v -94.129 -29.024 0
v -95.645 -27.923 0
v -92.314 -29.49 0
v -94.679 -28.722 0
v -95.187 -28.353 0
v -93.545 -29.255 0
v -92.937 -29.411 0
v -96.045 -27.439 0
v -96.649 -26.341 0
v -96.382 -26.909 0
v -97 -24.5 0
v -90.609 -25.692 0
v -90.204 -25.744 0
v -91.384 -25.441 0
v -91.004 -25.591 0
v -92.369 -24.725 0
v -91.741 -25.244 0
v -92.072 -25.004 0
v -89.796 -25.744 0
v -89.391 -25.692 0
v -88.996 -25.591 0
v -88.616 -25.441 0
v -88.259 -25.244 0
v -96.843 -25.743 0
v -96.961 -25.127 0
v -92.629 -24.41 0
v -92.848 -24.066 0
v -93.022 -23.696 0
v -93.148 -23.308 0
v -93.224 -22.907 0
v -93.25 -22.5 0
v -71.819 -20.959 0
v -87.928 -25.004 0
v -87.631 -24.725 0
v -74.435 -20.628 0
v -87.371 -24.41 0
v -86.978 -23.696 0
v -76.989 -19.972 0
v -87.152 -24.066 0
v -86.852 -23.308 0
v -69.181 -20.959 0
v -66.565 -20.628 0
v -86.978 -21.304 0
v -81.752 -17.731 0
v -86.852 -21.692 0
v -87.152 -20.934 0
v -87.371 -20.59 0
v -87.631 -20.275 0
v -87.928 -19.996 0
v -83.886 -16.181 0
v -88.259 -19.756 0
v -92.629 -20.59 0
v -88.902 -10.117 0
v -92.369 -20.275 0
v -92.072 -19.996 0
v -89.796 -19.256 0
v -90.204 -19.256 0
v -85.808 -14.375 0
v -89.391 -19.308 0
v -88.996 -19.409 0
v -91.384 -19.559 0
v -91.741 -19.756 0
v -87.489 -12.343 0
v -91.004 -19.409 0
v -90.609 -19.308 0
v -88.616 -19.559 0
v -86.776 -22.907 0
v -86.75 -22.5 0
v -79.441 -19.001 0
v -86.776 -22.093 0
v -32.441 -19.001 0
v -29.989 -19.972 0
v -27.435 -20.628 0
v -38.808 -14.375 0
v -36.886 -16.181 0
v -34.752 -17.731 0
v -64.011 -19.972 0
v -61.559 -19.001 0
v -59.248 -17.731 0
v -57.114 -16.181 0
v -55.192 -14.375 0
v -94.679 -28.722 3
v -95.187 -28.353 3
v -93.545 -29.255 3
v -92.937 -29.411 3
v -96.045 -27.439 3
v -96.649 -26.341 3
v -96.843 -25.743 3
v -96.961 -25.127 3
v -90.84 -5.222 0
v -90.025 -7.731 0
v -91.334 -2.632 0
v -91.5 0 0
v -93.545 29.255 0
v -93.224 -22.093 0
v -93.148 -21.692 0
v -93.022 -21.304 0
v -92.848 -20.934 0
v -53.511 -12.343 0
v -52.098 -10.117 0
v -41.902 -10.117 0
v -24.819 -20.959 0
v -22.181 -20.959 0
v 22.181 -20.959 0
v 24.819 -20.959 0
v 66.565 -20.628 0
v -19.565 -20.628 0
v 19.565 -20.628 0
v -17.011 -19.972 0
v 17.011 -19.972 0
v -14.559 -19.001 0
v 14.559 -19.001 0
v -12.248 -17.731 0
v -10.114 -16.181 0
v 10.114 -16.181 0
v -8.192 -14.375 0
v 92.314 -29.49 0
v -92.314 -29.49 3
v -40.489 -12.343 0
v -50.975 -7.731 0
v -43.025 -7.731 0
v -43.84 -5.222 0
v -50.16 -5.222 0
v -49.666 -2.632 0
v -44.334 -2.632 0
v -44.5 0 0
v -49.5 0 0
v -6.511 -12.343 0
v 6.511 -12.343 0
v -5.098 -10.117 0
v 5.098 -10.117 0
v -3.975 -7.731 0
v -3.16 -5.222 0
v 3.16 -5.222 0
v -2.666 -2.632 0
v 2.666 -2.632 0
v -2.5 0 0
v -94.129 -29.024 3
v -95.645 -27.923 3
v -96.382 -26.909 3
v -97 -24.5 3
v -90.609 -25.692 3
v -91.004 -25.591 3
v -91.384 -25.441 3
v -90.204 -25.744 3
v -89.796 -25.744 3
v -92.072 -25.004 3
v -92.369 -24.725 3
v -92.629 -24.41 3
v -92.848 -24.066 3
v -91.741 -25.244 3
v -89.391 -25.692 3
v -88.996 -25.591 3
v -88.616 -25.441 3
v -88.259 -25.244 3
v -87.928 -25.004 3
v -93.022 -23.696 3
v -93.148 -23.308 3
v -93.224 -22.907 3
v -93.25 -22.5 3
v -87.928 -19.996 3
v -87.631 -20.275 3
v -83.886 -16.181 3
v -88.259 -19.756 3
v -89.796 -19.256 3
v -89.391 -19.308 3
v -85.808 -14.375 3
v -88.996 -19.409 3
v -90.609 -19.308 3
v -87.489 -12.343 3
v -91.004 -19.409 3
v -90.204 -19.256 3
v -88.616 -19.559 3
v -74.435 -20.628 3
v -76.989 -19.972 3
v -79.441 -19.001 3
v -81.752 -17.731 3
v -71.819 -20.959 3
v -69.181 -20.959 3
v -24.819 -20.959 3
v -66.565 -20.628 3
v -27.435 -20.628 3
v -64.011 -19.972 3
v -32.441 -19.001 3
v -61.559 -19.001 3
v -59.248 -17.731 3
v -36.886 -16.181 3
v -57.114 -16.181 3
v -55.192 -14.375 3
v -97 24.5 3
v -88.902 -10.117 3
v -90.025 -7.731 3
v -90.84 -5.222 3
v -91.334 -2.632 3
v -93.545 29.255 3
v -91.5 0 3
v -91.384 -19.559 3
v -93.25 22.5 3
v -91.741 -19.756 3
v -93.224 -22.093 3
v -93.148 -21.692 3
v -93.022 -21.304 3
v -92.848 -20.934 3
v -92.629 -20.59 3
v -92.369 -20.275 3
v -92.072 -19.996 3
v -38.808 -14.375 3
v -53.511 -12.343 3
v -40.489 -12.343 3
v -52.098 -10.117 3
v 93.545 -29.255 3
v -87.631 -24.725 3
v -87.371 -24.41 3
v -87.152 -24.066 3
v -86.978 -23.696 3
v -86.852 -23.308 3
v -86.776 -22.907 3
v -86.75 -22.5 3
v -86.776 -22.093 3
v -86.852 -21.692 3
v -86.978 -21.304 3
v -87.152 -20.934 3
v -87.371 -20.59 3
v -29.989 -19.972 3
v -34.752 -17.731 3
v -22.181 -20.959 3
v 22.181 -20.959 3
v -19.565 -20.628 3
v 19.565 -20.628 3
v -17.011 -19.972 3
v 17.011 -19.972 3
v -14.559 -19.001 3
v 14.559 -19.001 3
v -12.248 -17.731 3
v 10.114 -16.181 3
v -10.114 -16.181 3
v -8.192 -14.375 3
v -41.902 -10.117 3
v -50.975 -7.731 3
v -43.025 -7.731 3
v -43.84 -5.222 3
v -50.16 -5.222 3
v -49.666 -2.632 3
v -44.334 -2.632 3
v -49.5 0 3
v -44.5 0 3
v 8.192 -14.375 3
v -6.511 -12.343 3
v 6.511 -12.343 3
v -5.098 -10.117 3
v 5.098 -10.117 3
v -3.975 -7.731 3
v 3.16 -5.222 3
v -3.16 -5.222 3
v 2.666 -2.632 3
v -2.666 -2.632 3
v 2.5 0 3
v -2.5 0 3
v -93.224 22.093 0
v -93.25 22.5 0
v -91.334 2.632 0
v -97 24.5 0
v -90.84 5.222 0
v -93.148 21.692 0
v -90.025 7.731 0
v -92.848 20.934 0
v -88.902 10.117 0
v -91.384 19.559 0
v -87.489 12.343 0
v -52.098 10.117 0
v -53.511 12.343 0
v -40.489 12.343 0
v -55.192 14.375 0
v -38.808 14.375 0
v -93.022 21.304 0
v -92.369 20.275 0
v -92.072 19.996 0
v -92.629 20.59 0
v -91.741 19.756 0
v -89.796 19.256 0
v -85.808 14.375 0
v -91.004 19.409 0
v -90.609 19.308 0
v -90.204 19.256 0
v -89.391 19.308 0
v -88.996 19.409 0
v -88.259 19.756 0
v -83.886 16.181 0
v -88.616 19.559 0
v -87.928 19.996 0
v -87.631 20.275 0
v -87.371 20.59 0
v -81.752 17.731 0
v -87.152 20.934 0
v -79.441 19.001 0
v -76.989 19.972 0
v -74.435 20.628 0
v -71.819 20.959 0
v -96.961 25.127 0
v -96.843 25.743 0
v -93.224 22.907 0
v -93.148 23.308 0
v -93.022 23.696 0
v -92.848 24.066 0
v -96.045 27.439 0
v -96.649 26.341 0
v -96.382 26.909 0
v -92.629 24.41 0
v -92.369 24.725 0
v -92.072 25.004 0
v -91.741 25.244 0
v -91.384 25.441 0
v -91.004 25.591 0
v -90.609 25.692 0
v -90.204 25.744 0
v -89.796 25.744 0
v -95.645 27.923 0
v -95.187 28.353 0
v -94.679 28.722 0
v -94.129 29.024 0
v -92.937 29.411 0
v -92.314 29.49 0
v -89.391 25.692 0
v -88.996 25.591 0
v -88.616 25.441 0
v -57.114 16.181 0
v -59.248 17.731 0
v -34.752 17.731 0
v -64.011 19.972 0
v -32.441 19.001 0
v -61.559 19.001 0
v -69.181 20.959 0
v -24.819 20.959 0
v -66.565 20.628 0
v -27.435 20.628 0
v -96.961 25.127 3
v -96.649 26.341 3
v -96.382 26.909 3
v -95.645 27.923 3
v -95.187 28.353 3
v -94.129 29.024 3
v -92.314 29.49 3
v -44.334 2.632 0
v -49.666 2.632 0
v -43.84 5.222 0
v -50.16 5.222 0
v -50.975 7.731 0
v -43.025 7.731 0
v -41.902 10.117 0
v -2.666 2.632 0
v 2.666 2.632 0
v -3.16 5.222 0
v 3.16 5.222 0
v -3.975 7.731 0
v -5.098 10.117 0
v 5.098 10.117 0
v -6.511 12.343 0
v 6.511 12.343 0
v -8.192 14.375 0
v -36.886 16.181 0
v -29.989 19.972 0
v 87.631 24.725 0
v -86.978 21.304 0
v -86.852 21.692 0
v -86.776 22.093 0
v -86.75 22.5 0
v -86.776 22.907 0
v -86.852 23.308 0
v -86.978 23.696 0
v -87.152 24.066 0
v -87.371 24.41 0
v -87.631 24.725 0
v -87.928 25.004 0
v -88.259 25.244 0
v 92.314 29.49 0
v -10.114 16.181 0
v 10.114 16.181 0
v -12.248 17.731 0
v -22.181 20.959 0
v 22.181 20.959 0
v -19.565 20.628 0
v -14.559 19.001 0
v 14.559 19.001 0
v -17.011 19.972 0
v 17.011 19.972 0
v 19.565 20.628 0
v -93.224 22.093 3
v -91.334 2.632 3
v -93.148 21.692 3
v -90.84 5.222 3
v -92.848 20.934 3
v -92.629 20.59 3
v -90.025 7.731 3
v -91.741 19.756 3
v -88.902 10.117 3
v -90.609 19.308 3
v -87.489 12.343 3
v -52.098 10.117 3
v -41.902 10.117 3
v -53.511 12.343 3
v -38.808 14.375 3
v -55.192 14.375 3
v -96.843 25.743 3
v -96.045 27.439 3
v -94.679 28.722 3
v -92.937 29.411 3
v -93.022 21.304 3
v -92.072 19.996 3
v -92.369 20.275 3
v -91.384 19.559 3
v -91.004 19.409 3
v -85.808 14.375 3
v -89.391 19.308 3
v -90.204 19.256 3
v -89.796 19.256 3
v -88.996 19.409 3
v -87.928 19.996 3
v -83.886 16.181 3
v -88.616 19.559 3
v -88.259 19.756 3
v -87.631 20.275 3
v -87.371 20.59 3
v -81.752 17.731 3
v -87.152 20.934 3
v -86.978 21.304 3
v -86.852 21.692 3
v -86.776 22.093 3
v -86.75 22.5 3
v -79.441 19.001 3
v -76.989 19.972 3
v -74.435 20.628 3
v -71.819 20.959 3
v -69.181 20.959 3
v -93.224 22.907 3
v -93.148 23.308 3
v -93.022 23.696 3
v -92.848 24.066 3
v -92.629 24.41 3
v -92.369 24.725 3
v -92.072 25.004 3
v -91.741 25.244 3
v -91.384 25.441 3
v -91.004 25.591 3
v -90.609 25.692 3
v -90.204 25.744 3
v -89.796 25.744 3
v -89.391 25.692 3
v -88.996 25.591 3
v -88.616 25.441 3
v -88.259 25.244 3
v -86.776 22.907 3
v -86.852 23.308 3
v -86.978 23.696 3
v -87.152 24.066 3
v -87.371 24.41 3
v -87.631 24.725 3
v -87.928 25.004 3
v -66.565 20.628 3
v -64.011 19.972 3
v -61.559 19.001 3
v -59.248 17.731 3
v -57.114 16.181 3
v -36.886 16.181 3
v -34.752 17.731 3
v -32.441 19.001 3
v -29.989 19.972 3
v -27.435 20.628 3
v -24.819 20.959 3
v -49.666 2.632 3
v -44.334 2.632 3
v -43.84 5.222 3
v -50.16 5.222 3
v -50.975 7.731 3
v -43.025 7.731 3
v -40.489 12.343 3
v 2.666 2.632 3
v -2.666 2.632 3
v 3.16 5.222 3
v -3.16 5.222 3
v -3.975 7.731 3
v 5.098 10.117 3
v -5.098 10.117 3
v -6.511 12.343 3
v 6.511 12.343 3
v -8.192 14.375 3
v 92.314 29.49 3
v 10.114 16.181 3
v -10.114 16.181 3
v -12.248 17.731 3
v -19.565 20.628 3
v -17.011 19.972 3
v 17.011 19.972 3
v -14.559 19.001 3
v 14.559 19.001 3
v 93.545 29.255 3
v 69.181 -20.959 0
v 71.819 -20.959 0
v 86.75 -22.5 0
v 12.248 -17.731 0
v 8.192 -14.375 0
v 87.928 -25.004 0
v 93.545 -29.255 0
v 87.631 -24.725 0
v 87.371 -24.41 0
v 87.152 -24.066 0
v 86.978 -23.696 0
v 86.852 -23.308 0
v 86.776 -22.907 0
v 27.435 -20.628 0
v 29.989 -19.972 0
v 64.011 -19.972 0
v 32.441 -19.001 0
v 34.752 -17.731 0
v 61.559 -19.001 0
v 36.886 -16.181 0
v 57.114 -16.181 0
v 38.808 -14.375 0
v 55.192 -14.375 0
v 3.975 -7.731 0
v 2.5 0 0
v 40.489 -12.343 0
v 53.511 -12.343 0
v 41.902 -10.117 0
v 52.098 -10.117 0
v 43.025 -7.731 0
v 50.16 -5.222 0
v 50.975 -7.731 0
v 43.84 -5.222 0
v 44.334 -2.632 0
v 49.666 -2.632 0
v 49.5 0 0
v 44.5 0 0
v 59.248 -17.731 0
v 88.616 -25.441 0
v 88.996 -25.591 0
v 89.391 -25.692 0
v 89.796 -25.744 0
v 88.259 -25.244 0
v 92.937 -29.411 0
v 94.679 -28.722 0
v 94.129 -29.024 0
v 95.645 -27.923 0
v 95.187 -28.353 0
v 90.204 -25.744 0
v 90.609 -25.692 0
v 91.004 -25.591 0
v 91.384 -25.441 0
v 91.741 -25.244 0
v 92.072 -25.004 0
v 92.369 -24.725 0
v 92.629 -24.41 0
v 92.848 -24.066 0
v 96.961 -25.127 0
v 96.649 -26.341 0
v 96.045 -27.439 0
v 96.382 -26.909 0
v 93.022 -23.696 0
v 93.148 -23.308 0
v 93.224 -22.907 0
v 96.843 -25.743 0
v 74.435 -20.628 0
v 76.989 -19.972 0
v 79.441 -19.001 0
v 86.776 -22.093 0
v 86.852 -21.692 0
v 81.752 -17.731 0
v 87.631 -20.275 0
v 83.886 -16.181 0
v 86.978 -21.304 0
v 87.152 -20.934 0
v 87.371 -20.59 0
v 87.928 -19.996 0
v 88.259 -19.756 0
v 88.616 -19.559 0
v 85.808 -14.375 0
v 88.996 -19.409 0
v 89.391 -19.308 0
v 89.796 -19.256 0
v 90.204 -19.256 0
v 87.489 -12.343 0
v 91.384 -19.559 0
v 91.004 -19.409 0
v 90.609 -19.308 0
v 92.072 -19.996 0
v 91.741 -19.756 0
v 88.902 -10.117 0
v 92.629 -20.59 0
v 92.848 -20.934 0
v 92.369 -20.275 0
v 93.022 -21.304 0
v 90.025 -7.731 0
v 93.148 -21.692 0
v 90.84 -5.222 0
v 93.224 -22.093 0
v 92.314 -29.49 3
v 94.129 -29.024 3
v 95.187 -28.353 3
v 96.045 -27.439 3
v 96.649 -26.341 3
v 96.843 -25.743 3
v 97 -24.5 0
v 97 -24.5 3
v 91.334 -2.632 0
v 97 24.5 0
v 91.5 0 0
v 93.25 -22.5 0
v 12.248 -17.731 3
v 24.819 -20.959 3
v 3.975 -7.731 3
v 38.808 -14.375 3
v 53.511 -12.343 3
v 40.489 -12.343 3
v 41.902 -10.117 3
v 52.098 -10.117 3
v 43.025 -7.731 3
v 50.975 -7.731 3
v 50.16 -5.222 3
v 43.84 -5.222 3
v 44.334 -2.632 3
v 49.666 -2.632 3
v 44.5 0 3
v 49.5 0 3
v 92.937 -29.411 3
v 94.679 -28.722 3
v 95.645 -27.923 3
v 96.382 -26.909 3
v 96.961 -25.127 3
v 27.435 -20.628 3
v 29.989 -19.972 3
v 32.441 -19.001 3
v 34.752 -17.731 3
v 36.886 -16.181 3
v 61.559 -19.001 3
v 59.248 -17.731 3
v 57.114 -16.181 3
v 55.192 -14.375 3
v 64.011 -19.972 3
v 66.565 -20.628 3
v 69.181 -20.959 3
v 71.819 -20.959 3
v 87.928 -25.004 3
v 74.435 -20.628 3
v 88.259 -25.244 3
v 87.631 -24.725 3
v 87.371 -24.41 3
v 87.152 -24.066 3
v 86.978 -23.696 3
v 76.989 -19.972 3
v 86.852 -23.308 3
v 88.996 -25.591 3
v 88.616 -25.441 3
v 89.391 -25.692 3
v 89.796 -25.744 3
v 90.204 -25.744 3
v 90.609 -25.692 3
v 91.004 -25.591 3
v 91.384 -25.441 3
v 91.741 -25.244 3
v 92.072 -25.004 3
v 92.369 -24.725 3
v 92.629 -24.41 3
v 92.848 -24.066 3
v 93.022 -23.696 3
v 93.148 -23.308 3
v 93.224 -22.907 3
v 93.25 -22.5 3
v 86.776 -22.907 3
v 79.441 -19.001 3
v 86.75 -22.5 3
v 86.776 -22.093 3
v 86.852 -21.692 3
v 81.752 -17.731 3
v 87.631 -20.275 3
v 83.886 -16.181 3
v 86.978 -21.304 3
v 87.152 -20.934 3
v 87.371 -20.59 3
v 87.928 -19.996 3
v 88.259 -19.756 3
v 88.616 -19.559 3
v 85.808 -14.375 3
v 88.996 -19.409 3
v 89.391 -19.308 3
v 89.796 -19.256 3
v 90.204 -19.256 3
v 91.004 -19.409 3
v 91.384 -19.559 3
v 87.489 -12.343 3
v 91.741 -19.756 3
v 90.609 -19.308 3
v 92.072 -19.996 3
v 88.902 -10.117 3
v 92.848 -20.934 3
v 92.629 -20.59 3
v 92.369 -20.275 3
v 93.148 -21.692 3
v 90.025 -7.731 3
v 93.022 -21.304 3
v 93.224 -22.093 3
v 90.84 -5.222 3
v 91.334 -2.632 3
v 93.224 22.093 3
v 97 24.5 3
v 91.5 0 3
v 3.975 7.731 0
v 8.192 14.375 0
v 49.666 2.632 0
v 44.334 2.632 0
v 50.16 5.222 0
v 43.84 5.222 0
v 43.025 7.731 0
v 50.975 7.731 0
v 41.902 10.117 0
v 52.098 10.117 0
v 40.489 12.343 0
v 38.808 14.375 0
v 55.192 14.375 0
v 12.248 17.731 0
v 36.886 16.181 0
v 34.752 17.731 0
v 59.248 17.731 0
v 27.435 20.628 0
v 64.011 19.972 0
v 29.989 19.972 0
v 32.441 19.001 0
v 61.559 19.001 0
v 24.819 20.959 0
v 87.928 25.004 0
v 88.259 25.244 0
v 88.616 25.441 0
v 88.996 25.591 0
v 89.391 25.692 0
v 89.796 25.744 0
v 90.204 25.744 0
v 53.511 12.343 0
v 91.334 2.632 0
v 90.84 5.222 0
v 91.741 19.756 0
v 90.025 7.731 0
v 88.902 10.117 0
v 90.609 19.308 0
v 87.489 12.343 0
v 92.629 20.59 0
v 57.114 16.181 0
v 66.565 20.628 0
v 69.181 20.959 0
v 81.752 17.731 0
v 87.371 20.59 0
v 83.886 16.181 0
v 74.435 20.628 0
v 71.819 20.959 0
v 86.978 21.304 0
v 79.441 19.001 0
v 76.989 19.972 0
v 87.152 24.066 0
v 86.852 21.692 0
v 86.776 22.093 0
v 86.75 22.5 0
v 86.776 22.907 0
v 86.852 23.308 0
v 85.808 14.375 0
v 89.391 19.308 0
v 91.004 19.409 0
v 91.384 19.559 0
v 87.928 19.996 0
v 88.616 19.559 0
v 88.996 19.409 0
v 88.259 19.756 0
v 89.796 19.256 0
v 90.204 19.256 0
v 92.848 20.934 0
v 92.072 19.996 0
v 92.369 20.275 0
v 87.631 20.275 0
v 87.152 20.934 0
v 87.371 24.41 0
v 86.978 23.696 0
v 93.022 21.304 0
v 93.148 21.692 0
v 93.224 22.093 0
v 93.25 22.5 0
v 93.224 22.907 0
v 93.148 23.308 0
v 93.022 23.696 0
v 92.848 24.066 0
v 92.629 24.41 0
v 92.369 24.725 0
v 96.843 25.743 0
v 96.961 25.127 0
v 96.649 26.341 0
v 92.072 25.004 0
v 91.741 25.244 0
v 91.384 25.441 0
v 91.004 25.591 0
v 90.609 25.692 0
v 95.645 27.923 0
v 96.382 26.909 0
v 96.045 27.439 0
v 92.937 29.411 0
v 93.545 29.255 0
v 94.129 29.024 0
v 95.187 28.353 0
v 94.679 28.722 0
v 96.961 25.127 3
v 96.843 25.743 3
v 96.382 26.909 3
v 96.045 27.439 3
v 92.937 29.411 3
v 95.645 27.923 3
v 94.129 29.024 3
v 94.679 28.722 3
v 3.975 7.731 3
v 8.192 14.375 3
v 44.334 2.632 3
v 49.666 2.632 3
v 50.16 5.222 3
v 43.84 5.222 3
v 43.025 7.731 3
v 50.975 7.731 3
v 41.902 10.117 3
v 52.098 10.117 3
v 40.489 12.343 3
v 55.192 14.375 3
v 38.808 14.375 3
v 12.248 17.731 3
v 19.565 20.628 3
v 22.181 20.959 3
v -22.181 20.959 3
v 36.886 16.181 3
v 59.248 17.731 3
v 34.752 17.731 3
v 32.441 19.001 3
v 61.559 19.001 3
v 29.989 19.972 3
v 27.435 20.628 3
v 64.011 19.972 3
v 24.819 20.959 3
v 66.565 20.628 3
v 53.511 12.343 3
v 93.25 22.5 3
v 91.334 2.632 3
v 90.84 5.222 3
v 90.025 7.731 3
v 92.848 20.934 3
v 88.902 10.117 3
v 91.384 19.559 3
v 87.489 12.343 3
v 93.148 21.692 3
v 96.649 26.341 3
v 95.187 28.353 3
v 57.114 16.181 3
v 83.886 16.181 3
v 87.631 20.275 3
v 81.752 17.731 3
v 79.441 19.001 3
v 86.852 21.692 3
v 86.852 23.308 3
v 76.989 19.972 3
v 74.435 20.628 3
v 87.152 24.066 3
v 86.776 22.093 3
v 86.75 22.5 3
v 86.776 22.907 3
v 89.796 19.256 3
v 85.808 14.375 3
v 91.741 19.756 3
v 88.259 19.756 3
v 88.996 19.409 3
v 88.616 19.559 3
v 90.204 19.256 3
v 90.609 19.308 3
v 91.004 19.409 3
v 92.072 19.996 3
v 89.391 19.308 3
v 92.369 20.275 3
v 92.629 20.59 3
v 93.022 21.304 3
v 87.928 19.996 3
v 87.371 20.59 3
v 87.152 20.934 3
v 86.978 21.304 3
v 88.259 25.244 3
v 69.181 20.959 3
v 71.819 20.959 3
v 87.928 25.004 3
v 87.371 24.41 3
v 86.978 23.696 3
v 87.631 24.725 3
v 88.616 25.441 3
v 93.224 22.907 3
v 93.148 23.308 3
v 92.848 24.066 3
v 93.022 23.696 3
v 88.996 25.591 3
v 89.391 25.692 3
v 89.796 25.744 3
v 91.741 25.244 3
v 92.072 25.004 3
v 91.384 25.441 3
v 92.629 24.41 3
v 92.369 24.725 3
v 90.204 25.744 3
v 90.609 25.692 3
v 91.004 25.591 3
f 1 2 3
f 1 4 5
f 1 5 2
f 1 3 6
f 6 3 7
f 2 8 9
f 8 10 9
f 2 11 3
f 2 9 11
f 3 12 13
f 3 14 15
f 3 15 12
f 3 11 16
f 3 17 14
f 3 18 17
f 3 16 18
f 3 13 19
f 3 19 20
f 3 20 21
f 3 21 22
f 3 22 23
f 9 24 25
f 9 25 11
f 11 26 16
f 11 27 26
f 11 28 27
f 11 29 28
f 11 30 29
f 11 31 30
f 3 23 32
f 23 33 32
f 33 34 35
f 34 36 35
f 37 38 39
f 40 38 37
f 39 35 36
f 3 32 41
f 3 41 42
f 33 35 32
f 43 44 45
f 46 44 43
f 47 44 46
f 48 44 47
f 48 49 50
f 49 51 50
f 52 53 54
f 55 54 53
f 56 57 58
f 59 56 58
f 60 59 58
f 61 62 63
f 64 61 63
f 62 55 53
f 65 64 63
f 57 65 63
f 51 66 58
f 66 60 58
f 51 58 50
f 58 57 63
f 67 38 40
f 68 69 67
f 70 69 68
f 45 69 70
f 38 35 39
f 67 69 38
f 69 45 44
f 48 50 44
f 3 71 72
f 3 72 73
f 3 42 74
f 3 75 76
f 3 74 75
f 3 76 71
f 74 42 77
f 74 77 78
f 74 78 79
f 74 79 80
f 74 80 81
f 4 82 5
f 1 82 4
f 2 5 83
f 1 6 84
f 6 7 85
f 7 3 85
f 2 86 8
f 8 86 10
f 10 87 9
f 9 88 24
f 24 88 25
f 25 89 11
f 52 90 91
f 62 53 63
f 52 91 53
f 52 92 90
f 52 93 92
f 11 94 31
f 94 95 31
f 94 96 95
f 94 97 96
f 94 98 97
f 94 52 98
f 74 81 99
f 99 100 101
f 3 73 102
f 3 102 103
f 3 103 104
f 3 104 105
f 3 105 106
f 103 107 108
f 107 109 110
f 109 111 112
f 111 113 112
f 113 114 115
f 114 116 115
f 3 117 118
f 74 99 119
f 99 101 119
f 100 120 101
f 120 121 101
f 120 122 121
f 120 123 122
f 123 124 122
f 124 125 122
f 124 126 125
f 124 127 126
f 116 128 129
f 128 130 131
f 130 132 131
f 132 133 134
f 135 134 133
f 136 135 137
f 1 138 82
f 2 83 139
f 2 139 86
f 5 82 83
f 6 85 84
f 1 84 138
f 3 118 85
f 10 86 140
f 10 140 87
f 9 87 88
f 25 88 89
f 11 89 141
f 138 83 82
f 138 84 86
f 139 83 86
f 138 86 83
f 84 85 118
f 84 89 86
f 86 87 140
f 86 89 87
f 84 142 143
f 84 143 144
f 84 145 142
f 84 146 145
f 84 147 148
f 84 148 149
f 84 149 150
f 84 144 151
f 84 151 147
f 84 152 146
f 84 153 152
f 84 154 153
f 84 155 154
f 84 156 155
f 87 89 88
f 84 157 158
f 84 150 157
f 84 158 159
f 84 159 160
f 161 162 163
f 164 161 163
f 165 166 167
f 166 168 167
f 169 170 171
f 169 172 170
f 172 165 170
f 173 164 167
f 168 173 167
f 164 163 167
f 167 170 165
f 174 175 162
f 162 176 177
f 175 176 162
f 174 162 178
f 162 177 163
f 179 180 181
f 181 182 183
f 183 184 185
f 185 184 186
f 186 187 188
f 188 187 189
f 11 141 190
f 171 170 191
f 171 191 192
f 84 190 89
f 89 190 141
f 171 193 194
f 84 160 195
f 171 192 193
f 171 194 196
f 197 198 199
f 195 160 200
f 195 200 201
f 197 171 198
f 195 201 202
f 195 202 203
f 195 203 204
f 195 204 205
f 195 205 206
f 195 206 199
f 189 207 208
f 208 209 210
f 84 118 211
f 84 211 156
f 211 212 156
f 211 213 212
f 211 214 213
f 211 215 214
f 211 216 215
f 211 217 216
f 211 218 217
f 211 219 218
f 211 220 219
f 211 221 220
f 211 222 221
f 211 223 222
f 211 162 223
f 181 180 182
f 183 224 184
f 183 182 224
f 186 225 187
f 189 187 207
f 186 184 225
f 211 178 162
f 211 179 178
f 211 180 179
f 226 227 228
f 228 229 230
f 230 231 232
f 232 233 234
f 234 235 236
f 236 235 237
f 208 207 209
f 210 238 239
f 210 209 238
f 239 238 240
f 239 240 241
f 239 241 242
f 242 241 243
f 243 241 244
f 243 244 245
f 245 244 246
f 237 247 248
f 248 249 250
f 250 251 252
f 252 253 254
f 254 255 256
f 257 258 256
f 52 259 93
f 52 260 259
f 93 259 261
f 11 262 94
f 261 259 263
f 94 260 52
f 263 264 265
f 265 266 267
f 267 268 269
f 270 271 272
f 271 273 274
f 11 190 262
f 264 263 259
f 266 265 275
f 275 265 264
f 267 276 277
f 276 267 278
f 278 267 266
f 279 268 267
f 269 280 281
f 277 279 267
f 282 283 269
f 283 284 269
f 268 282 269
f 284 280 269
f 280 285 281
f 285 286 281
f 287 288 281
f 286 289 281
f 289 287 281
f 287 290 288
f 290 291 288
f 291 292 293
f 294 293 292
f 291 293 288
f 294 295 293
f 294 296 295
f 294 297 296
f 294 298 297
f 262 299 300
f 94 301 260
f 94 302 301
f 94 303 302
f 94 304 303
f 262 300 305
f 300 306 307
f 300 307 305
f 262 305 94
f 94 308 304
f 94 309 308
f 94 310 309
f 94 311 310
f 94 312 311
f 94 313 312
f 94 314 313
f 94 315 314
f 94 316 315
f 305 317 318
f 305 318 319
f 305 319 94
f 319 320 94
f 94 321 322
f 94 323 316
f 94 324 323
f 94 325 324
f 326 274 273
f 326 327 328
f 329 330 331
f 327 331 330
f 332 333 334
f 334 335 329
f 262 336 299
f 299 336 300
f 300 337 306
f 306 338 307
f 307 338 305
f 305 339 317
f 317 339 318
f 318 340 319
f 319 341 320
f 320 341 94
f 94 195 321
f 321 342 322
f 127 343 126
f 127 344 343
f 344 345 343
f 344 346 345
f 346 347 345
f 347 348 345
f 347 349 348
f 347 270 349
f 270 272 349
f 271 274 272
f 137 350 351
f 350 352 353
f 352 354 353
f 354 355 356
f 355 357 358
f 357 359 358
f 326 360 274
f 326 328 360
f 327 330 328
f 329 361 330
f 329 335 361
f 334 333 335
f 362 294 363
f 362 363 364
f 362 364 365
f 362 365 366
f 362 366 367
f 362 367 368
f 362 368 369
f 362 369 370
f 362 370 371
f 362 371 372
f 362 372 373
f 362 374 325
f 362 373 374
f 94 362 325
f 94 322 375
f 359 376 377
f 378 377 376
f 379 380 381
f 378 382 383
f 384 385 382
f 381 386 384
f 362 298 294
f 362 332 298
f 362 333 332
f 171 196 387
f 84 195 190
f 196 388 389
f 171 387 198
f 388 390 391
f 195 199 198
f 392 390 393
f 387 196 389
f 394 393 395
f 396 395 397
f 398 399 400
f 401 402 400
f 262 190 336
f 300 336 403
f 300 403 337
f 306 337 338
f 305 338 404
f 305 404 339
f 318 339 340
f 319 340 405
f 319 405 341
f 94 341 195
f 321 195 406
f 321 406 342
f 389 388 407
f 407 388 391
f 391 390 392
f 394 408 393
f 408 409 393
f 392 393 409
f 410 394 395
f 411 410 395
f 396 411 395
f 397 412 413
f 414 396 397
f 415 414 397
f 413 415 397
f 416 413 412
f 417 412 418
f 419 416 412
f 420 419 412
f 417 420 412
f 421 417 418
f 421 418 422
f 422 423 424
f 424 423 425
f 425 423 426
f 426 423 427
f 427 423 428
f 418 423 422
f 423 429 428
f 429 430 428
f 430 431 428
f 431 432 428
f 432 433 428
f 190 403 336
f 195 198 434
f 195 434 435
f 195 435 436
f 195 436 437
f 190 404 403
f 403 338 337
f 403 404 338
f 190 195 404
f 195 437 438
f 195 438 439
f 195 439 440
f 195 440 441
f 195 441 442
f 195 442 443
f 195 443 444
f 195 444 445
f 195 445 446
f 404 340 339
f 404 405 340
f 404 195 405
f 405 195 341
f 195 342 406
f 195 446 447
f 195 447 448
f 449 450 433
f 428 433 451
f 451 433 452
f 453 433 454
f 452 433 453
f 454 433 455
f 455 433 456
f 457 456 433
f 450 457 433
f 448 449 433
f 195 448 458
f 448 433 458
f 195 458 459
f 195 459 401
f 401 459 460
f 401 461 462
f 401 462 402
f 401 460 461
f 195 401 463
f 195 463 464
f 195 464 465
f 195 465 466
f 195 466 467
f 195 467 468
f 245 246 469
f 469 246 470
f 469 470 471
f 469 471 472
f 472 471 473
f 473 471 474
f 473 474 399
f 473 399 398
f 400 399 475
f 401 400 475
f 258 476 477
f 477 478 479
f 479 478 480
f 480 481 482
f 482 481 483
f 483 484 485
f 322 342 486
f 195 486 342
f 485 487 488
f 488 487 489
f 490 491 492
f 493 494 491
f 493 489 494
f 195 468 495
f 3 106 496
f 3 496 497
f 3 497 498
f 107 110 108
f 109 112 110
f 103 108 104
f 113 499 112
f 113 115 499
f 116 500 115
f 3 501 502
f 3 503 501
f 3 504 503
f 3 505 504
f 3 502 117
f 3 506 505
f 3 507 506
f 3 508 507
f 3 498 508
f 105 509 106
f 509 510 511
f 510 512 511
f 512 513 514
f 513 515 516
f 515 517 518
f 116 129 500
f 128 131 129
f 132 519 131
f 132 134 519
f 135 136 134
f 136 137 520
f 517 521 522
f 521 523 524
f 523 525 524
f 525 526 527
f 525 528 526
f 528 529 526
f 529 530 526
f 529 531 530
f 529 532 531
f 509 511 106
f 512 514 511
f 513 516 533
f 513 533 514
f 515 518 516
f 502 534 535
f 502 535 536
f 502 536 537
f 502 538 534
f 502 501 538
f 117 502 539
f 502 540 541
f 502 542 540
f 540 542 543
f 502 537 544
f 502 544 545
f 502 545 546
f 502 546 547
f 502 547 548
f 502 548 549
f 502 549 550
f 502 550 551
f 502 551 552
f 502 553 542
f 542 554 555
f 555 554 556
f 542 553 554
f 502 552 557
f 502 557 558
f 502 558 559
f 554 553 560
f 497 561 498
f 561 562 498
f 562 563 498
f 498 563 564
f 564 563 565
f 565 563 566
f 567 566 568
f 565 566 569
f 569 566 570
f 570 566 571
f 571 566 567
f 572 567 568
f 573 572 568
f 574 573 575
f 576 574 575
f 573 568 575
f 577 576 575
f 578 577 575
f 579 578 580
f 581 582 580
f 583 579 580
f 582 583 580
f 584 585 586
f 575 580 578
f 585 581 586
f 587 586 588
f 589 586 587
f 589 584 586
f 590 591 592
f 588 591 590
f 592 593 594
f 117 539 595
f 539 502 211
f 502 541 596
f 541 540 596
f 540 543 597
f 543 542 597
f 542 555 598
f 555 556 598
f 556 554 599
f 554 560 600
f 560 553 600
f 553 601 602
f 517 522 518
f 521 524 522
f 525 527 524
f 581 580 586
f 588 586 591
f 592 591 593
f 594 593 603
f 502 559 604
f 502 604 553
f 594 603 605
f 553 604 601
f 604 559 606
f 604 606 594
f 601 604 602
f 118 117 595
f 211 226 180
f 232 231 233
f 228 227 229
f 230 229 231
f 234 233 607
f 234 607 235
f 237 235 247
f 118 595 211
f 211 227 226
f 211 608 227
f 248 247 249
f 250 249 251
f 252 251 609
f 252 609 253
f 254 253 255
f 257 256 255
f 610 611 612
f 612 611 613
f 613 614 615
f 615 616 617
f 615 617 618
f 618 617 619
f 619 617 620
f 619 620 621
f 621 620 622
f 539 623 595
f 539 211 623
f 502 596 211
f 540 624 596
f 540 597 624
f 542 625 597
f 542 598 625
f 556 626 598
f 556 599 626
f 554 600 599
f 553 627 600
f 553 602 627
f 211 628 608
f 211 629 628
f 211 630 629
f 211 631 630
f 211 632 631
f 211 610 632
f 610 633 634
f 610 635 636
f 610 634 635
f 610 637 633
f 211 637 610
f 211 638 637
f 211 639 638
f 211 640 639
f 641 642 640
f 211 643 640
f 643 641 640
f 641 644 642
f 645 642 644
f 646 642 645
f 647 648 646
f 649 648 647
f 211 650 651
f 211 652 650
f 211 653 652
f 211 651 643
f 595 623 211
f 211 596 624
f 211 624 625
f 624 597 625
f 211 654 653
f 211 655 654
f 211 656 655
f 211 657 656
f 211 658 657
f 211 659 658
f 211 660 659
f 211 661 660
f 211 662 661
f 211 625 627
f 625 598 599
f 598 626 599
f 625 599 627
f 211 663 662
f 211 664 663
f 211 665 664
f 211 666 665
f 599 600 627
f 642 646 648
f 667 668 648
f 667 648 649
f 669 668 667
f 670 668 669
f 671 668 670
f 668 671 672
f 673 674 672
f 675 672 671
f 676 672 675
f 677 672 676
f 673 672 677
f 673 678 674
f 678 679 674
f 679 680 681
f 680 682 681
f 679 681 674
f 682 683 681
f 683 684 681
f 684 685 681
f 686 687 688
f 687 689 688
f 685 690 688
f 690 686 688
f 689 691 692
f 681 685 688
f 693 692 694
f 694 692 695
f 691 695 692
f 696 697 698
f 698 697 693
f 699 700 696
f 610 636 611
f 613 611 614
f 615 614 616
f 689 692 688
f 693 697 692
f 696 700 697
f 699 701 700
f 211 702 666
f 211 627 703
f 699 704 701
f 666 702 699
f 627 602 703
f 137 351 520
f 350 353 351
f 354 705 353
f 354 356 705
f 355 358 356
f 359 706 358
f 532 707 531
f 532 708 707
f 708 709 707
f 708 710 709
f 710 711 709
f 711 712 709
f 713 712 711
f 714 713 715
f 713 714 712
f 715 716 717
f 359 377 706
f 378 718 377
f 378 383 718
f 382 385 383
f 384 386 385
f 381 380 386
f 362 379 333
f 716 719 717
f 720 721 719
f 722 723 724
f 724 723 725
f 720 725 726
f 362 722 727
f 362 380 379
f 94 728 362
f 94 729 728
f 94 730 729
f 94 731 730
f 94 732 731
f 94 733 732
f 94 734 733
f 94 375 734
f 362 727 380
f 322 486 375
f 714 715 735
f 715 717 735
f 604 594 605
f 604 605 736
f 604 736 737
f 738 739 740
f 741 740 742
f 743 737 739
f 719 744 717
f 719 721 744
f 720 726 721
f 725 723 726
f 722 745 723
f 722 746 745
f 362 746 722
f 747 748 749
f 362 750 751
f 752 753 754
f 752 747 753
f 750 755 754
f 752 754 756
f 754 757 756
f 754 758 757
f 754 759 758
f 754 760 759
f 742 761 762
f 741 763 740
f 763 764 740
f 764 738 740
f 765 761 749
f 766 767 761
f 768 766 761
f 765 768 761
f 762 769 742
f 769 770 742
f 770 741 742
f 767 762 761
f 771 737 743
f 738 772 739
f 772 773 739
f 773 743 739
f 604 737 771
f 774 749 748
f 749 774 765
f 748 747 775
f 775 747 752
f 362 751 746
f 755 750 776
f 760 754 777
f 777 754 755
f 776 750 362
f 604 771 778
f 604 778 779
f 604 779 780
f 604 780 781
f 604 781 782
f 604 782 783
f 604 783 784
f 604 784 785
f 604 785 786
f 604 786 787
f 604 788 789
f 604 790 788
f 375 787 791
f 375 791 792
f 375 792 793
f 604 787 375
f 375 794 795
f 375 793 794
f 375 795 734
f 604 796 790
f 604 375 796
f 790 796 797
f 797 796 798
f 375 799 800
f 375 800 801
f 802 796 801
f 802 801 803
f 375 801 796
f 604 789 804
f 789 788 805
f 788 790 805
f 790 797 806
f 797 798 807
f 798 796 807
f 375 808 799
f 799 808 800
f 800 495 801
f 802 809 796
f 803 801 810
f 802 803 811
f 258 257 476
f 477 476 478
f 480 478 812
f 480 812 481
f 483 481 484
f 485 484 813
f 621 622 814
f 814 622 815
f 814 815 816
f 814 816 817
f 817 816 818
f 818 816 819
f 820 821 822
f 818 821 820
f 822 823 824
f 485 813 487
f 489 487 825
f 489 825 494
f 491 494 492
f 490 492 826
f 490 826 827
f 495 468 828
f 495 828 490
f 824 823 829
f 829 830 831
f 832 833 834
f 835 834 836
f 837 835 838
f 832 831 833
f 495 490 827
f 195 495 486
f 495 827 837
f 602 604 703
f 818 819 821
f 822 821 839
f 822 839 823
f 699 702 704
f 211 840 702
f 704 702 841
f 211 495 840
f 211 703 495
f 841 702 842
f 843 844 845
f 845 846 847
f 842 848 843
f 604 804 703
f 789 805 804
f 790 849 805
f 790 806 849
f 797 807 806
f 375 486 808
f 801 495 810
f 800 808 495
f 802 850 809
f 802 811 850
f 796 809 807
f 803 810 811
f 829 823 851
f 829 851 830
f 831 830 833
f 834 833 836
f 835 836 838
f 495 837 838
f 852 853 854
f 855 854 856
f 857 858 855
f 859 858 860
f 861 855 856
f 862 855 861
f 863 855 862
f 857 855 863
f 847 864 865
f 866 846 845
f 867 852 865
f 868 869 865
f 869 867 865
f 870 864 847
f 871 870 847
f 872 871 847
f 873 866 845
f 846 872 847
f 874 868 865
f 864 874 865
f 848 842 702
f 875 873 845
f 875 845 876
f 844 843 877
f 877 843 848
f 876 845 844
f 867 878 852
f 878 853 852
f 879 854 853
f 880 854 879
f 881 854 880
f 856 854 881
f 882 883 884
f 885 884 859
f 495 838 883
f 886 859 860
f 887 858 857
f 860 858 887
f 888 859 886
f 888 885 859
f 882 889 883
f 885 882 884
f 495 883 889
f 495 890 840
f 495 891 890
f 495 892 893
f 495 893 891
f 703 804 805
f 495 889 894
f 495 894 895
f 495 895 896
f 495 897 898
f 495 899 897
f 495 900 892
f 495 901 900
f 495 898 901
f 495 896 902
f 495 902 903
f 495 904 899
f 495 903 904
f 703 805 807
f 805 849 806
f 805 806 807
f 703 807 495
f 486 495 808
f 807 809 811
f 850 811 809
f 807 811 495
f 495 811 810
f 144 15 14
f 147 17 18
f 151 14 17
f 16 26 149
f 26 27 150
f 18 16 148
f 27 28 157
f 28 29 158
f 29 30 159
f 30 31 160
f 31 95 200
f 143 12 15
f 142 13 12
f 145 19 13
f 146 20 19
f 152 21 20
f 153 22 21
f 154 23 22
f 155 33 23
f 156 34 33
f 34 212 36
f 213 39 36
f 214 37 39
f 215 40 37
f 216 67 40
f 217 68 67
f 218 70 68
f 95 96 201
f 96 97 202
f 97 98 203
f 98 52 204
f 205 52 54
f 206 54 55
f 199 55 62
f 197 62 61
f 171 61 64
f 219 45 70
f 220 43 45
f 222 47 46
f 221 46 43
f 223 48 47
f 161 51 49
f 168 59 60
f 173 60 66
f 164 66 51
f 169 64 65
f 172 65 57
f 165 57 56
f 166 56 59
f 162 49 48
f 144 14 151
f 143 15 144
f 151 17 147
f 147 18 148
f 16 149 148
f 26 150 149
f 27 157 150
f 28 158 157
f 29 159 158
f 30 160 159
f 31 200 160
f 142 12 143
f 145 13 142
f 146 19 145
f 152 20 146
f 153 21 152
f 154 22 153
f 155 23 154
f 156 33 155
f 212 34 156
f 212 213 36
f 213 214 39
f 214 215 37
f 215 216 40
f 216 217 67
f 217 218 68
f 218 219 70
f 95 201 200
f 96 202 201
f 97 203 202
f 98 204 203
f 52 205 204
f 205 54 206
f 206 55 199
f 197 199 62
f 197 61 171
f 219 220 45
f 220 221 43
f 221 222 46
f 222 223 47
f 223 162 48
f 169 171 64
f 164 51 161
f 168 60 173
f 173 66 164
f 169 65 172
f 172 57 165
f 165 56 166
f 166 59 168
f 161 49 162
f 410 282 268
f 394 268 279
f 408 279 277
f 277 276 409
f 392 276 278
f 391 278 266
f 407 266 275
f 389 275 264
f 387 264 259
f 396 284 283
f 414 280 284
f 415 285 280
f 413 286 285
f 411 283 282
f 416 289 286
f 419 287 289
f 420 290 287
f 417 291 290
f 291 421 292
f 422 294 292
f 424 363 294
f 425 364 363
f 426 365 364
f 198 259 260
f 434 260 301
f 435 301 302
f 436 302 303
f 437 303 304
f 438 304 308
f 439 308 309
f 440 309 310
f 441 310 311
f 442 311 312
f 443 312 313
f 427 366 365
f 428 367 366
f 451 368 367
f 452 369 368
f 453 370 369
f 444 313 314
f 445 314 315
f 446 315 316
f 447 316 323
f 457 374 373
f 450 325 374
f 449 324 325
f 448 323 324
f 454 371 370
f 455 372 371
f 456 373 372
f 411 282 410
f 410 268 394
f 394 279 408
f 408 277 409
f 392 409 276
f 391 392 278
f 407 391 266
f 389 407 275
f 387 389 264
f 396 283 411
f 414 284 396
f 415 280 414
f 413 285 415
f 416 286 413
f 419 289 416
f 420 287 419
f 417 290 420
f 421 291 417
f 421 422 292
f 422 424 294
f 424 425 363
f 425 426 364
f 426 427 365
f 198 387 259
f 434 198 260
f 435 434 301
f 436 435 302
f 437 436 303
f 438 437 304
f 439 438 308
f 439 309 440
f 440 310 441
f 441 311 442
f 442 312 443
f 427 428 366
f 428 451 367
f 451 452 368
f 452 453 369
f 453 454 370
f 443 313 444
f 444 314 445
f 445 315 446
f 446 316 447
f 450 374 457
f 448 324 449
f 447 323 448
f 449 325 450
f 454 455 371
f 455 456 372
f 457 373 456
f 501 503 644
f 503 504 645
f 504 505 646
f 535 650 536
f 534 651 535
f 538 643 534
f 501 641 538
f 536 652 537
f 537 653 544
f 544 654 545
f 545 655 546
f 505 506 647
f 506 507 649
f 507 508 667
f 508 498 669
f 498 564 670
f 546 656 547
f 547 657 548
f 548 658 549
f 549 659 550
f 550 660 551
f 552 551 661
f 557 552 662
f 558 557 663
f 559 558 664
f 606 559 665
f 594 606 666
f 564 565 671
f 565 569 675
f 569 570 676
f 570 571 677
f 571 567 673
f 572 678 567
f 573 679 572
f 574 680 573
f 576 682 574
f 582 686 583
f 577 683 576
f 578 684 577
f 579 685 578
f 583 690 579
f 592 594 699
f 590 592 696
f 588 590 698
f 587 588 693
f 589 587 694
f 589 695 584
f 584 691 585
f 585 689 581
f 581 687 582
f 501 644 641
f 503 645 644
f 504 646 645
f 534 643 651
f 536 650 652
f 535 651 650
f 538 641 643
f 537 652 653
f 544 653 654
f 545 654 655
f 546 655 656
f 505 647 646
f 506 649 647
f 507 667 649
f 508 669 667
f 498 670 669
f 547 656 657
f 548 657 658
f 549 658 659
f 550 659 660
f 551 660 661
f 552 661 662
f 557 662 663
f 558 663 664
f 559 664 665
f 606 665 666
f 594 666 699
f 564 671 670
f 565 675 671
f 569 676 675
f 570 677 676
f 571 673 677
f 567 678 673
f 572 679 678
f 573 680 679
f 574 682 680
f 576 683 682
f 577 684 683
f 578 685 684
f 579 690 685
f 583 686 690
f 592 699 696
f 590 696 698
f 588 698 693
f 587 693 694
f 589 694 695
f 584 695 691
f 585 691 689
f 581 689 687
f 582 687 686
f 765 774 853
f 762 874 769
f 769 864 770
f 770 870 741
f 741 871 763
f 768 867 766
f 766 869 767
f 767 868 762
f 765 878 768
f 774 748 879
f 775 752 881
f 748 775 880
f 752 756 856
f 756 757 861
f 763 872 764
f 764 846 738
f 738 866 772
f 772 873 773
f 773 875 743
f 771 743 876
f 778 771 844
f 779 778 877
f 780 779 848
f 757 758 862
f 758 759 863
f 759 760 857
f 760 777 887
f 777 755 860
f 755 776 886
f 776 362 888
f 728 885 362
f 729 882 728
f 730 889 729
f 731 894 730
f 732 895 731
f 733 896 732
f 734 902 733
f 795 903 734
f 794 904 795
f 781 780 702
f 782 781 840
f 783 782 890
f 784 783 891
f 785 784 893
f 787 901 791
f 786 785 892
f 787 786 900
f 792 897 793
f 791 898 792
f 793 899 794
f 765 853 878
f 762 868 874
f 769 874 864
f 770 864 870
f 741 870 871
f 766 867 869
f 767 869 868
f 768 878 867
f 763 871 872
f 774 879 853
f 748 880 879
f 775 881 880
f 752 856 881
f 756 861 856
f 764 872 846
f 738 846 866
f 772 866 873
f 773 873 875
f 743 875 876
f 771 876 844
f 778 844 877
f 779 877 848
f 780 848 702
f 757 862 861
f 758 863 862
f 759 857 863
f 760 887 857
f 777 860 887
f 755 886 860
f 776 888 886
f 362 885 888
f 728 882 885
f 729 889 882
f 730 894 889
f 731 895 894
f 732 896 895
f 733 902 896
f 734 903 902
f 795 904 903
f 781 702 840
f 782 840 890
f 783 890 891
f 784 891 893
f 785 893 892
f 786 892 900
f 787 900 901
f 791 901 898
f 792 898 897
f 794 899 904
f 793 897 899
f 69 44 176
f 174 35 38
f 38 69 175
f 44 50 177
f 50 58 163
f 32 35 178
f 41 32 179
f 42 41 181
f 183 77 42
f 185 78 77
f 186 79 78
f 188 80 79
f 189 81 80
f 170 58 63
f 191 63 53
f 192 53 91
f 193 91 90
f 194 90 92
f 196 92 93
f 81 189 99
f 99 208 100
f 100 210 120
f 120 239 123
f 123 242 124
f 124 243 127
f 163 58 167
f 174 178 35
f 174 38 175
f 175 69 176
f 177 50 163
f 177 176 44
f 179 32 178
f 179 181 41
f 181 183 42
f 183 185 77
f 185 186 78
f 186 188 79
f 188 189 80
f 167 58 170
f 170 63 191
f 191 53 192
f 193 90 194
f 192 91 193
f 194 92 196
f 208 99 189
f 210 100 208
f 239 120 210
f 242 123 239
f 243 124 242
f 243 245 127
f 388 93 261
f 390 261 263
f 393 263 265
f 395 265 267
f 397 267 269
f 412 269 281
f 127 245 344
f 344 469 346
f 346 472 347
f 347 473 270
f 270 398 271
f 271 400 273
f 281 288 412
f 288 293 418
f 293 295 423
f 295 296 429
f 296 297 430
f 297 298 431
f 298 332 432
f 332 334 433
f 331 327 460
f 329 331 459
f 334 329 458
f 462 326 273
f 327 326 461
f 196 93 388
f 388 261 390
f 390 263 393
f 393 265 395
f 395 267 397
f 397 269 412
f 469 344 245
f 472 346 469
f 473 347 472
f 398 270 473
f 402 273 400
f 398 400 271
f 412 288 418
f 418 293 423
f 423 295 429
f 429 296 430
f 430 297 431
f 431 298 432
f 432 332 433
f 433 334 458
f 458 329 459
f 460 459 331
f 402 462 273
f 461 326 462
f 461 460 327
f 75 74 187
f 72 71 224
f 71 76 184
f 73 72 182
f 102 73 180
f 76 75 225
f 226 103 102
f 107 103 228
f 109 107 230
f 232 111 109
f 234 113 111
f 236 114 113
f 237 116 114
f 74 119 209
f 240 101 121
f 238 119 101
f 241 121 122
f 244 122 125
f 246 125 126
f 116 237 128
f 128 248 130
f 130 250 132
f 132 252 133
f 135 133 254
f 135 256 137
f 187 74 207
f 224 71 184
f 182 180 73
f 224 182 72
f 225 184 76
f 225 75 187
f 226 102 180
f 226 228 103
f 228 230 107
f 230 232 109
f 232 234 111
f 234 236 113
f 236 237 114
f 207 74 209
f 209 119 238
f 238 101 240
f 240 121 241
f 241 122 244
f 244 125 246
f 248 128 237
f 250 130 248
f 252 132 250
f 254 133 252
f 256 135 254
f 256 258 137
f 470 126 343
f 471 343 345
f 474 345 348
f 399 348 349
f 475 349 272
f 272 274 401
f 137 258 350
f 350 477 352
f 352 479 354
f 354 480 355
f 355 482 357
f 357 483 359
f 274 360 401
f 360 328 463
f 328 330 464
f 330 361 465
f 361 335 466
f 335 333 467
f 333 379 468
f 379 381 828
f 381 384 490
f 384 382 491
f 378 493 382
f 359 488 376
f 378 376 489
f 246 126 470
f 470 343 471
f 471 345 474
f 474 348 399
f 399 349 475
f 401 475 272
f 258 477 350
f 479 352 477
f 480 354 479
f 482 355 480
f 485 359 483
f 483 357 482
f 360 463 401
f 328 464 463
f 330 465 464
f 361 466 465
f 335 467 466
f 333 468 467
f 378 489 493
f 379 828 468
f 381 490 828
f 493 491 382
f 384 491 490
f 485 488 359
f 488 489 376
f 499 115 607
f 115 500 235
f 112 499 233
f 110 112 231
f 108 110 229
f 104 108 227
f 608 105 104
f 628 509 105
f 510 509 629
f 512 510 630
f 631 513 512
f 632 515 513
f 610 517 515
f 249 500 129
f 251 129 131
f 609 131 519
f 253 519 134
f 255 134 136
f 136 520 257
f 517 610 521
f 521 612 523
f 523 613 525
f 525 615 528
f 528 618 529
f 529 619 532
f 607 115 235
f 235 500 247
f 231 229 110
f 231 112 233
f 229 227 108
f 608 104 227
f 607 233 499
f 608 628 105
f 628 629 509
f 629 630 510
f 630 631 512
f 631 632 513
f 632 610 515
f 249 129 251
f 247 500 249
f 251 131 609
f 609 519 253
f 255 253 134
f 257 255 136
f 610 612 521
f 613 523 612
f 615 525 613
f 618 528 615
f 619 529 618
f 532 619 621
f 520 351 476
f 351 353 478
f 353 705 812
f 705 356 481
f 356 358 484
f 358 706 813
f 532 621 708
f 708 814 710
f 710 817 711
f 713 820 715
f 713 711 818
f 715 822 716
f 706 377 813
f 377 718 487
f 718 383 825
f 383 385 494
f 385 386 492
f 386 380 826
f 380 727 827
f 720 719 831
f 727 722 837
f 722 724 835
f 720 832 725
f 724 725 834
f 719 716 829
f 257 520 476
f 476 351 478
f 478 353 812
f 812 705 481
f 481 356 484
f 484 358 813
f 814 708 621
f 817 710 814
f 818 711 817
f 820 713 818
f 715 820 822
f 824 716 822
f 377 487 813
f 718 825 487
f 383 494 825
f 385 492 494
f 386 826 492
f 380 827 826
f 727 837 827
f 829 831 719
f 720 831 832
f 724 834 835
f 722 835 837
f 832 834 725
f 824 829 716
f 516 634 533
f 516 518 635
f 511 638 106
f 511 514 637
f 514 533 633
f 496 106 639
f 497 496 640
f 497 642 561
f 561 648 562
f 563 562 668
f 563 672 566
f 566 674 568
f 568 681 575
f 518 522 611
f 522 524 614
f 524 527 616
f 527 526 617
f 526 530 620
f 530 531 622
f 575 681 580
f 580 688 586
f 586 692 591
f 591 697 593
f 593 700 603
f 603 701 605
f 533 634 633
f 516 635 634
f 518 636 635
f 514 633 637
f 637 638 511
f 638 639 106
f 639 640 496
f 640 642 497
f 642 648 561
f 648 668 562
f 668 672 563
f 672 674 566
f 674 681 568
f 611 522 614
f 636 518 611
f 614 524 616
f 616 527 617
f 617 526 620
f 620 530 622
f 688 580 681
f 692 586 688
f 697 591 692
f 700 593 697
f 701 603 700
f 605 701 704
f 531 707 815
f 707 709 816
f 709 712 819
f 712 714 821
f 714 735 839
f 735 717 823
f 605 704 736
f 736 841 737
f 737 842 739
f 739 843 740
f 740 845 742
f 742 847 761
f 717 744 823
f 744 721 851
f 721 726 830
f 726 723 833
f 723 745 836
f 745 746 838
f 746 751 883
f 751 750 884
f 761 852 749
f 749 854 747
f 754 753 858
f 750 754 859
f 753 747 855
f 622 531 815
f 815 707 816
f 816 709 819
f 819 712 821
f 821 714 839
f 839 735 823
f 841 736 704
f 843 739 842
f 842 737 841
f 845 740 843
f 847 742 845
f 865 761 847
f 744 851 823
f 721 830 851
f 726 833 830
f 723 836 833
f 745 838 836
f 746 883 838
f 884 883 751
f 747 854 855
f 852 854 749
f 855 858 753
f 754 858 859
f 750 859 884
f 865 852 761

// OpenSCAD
$fn = 50;

difference() {
	union() {
		hull() {
			translate(v = [-92.0, 24.5, 0]) {
				cylinder(h = 3, r = 5);
			}
			translate(v = [92.0, 24.5, 0]) {
				cylinder(h = 3, r = 5);
			}
			translate(v = [-92.0, -24.5, 0]) {
				cylinder(h = 3, r = 5);
			}
			translate(v = [92.0, -24.5, 0]) {
				cylinder(h = 3, r = 5);
			}
		}
	}
	union() {
		translate(v = [-90.0, -22.5, -100.0]) {
			cylinder(h = 200, r = 3.25);
		}
		translate(v = [-90.0, 22.5, -100.0]) {
			cylinder(h = 200, r = 3.25);
		}
		translate(v = [90.0, -22.5, -100.0]) {
			cylinder(h = 200, r = 3.25);
		}
		translate(v = [90.0, 22.5, -100.0]) {
			cylinder(h = 200, r = 3.25);
		}
		translate(v = [-90.0, -22.5, -100.0]) {
			cylinder(h = 200, r = 1.8);
		}
		translate(v = [-90.0, 22.5, -100.0]) {
			cylinder(h = 200, r = 1.8);
		}
		translate(v = [90.0, -22.5, -100.0]) {
			cylinder(h = 200, r = 1.8);
		}
		translate(v = [90.0, 22.5, -100.0]) {
			cylinder(h = 200, r = 1.8);
		}
		translate(v = [-70.5, 0, 0.0]) {
			cylinder(h = 3, r = 21.0);
		}
		translate(v = [-23.5, 0, 0.0]) {
			cylinder(h = 3, r = 21.0);
		}
		translate(v = [23.5, 0, 0.0]) {
			cylinder(h = 3, r = 21.0);
		}
		translate(v = [70.5, 0, 0.0]) {
			cylinder(h = 3, r = 21.0);
		}
	}
}
